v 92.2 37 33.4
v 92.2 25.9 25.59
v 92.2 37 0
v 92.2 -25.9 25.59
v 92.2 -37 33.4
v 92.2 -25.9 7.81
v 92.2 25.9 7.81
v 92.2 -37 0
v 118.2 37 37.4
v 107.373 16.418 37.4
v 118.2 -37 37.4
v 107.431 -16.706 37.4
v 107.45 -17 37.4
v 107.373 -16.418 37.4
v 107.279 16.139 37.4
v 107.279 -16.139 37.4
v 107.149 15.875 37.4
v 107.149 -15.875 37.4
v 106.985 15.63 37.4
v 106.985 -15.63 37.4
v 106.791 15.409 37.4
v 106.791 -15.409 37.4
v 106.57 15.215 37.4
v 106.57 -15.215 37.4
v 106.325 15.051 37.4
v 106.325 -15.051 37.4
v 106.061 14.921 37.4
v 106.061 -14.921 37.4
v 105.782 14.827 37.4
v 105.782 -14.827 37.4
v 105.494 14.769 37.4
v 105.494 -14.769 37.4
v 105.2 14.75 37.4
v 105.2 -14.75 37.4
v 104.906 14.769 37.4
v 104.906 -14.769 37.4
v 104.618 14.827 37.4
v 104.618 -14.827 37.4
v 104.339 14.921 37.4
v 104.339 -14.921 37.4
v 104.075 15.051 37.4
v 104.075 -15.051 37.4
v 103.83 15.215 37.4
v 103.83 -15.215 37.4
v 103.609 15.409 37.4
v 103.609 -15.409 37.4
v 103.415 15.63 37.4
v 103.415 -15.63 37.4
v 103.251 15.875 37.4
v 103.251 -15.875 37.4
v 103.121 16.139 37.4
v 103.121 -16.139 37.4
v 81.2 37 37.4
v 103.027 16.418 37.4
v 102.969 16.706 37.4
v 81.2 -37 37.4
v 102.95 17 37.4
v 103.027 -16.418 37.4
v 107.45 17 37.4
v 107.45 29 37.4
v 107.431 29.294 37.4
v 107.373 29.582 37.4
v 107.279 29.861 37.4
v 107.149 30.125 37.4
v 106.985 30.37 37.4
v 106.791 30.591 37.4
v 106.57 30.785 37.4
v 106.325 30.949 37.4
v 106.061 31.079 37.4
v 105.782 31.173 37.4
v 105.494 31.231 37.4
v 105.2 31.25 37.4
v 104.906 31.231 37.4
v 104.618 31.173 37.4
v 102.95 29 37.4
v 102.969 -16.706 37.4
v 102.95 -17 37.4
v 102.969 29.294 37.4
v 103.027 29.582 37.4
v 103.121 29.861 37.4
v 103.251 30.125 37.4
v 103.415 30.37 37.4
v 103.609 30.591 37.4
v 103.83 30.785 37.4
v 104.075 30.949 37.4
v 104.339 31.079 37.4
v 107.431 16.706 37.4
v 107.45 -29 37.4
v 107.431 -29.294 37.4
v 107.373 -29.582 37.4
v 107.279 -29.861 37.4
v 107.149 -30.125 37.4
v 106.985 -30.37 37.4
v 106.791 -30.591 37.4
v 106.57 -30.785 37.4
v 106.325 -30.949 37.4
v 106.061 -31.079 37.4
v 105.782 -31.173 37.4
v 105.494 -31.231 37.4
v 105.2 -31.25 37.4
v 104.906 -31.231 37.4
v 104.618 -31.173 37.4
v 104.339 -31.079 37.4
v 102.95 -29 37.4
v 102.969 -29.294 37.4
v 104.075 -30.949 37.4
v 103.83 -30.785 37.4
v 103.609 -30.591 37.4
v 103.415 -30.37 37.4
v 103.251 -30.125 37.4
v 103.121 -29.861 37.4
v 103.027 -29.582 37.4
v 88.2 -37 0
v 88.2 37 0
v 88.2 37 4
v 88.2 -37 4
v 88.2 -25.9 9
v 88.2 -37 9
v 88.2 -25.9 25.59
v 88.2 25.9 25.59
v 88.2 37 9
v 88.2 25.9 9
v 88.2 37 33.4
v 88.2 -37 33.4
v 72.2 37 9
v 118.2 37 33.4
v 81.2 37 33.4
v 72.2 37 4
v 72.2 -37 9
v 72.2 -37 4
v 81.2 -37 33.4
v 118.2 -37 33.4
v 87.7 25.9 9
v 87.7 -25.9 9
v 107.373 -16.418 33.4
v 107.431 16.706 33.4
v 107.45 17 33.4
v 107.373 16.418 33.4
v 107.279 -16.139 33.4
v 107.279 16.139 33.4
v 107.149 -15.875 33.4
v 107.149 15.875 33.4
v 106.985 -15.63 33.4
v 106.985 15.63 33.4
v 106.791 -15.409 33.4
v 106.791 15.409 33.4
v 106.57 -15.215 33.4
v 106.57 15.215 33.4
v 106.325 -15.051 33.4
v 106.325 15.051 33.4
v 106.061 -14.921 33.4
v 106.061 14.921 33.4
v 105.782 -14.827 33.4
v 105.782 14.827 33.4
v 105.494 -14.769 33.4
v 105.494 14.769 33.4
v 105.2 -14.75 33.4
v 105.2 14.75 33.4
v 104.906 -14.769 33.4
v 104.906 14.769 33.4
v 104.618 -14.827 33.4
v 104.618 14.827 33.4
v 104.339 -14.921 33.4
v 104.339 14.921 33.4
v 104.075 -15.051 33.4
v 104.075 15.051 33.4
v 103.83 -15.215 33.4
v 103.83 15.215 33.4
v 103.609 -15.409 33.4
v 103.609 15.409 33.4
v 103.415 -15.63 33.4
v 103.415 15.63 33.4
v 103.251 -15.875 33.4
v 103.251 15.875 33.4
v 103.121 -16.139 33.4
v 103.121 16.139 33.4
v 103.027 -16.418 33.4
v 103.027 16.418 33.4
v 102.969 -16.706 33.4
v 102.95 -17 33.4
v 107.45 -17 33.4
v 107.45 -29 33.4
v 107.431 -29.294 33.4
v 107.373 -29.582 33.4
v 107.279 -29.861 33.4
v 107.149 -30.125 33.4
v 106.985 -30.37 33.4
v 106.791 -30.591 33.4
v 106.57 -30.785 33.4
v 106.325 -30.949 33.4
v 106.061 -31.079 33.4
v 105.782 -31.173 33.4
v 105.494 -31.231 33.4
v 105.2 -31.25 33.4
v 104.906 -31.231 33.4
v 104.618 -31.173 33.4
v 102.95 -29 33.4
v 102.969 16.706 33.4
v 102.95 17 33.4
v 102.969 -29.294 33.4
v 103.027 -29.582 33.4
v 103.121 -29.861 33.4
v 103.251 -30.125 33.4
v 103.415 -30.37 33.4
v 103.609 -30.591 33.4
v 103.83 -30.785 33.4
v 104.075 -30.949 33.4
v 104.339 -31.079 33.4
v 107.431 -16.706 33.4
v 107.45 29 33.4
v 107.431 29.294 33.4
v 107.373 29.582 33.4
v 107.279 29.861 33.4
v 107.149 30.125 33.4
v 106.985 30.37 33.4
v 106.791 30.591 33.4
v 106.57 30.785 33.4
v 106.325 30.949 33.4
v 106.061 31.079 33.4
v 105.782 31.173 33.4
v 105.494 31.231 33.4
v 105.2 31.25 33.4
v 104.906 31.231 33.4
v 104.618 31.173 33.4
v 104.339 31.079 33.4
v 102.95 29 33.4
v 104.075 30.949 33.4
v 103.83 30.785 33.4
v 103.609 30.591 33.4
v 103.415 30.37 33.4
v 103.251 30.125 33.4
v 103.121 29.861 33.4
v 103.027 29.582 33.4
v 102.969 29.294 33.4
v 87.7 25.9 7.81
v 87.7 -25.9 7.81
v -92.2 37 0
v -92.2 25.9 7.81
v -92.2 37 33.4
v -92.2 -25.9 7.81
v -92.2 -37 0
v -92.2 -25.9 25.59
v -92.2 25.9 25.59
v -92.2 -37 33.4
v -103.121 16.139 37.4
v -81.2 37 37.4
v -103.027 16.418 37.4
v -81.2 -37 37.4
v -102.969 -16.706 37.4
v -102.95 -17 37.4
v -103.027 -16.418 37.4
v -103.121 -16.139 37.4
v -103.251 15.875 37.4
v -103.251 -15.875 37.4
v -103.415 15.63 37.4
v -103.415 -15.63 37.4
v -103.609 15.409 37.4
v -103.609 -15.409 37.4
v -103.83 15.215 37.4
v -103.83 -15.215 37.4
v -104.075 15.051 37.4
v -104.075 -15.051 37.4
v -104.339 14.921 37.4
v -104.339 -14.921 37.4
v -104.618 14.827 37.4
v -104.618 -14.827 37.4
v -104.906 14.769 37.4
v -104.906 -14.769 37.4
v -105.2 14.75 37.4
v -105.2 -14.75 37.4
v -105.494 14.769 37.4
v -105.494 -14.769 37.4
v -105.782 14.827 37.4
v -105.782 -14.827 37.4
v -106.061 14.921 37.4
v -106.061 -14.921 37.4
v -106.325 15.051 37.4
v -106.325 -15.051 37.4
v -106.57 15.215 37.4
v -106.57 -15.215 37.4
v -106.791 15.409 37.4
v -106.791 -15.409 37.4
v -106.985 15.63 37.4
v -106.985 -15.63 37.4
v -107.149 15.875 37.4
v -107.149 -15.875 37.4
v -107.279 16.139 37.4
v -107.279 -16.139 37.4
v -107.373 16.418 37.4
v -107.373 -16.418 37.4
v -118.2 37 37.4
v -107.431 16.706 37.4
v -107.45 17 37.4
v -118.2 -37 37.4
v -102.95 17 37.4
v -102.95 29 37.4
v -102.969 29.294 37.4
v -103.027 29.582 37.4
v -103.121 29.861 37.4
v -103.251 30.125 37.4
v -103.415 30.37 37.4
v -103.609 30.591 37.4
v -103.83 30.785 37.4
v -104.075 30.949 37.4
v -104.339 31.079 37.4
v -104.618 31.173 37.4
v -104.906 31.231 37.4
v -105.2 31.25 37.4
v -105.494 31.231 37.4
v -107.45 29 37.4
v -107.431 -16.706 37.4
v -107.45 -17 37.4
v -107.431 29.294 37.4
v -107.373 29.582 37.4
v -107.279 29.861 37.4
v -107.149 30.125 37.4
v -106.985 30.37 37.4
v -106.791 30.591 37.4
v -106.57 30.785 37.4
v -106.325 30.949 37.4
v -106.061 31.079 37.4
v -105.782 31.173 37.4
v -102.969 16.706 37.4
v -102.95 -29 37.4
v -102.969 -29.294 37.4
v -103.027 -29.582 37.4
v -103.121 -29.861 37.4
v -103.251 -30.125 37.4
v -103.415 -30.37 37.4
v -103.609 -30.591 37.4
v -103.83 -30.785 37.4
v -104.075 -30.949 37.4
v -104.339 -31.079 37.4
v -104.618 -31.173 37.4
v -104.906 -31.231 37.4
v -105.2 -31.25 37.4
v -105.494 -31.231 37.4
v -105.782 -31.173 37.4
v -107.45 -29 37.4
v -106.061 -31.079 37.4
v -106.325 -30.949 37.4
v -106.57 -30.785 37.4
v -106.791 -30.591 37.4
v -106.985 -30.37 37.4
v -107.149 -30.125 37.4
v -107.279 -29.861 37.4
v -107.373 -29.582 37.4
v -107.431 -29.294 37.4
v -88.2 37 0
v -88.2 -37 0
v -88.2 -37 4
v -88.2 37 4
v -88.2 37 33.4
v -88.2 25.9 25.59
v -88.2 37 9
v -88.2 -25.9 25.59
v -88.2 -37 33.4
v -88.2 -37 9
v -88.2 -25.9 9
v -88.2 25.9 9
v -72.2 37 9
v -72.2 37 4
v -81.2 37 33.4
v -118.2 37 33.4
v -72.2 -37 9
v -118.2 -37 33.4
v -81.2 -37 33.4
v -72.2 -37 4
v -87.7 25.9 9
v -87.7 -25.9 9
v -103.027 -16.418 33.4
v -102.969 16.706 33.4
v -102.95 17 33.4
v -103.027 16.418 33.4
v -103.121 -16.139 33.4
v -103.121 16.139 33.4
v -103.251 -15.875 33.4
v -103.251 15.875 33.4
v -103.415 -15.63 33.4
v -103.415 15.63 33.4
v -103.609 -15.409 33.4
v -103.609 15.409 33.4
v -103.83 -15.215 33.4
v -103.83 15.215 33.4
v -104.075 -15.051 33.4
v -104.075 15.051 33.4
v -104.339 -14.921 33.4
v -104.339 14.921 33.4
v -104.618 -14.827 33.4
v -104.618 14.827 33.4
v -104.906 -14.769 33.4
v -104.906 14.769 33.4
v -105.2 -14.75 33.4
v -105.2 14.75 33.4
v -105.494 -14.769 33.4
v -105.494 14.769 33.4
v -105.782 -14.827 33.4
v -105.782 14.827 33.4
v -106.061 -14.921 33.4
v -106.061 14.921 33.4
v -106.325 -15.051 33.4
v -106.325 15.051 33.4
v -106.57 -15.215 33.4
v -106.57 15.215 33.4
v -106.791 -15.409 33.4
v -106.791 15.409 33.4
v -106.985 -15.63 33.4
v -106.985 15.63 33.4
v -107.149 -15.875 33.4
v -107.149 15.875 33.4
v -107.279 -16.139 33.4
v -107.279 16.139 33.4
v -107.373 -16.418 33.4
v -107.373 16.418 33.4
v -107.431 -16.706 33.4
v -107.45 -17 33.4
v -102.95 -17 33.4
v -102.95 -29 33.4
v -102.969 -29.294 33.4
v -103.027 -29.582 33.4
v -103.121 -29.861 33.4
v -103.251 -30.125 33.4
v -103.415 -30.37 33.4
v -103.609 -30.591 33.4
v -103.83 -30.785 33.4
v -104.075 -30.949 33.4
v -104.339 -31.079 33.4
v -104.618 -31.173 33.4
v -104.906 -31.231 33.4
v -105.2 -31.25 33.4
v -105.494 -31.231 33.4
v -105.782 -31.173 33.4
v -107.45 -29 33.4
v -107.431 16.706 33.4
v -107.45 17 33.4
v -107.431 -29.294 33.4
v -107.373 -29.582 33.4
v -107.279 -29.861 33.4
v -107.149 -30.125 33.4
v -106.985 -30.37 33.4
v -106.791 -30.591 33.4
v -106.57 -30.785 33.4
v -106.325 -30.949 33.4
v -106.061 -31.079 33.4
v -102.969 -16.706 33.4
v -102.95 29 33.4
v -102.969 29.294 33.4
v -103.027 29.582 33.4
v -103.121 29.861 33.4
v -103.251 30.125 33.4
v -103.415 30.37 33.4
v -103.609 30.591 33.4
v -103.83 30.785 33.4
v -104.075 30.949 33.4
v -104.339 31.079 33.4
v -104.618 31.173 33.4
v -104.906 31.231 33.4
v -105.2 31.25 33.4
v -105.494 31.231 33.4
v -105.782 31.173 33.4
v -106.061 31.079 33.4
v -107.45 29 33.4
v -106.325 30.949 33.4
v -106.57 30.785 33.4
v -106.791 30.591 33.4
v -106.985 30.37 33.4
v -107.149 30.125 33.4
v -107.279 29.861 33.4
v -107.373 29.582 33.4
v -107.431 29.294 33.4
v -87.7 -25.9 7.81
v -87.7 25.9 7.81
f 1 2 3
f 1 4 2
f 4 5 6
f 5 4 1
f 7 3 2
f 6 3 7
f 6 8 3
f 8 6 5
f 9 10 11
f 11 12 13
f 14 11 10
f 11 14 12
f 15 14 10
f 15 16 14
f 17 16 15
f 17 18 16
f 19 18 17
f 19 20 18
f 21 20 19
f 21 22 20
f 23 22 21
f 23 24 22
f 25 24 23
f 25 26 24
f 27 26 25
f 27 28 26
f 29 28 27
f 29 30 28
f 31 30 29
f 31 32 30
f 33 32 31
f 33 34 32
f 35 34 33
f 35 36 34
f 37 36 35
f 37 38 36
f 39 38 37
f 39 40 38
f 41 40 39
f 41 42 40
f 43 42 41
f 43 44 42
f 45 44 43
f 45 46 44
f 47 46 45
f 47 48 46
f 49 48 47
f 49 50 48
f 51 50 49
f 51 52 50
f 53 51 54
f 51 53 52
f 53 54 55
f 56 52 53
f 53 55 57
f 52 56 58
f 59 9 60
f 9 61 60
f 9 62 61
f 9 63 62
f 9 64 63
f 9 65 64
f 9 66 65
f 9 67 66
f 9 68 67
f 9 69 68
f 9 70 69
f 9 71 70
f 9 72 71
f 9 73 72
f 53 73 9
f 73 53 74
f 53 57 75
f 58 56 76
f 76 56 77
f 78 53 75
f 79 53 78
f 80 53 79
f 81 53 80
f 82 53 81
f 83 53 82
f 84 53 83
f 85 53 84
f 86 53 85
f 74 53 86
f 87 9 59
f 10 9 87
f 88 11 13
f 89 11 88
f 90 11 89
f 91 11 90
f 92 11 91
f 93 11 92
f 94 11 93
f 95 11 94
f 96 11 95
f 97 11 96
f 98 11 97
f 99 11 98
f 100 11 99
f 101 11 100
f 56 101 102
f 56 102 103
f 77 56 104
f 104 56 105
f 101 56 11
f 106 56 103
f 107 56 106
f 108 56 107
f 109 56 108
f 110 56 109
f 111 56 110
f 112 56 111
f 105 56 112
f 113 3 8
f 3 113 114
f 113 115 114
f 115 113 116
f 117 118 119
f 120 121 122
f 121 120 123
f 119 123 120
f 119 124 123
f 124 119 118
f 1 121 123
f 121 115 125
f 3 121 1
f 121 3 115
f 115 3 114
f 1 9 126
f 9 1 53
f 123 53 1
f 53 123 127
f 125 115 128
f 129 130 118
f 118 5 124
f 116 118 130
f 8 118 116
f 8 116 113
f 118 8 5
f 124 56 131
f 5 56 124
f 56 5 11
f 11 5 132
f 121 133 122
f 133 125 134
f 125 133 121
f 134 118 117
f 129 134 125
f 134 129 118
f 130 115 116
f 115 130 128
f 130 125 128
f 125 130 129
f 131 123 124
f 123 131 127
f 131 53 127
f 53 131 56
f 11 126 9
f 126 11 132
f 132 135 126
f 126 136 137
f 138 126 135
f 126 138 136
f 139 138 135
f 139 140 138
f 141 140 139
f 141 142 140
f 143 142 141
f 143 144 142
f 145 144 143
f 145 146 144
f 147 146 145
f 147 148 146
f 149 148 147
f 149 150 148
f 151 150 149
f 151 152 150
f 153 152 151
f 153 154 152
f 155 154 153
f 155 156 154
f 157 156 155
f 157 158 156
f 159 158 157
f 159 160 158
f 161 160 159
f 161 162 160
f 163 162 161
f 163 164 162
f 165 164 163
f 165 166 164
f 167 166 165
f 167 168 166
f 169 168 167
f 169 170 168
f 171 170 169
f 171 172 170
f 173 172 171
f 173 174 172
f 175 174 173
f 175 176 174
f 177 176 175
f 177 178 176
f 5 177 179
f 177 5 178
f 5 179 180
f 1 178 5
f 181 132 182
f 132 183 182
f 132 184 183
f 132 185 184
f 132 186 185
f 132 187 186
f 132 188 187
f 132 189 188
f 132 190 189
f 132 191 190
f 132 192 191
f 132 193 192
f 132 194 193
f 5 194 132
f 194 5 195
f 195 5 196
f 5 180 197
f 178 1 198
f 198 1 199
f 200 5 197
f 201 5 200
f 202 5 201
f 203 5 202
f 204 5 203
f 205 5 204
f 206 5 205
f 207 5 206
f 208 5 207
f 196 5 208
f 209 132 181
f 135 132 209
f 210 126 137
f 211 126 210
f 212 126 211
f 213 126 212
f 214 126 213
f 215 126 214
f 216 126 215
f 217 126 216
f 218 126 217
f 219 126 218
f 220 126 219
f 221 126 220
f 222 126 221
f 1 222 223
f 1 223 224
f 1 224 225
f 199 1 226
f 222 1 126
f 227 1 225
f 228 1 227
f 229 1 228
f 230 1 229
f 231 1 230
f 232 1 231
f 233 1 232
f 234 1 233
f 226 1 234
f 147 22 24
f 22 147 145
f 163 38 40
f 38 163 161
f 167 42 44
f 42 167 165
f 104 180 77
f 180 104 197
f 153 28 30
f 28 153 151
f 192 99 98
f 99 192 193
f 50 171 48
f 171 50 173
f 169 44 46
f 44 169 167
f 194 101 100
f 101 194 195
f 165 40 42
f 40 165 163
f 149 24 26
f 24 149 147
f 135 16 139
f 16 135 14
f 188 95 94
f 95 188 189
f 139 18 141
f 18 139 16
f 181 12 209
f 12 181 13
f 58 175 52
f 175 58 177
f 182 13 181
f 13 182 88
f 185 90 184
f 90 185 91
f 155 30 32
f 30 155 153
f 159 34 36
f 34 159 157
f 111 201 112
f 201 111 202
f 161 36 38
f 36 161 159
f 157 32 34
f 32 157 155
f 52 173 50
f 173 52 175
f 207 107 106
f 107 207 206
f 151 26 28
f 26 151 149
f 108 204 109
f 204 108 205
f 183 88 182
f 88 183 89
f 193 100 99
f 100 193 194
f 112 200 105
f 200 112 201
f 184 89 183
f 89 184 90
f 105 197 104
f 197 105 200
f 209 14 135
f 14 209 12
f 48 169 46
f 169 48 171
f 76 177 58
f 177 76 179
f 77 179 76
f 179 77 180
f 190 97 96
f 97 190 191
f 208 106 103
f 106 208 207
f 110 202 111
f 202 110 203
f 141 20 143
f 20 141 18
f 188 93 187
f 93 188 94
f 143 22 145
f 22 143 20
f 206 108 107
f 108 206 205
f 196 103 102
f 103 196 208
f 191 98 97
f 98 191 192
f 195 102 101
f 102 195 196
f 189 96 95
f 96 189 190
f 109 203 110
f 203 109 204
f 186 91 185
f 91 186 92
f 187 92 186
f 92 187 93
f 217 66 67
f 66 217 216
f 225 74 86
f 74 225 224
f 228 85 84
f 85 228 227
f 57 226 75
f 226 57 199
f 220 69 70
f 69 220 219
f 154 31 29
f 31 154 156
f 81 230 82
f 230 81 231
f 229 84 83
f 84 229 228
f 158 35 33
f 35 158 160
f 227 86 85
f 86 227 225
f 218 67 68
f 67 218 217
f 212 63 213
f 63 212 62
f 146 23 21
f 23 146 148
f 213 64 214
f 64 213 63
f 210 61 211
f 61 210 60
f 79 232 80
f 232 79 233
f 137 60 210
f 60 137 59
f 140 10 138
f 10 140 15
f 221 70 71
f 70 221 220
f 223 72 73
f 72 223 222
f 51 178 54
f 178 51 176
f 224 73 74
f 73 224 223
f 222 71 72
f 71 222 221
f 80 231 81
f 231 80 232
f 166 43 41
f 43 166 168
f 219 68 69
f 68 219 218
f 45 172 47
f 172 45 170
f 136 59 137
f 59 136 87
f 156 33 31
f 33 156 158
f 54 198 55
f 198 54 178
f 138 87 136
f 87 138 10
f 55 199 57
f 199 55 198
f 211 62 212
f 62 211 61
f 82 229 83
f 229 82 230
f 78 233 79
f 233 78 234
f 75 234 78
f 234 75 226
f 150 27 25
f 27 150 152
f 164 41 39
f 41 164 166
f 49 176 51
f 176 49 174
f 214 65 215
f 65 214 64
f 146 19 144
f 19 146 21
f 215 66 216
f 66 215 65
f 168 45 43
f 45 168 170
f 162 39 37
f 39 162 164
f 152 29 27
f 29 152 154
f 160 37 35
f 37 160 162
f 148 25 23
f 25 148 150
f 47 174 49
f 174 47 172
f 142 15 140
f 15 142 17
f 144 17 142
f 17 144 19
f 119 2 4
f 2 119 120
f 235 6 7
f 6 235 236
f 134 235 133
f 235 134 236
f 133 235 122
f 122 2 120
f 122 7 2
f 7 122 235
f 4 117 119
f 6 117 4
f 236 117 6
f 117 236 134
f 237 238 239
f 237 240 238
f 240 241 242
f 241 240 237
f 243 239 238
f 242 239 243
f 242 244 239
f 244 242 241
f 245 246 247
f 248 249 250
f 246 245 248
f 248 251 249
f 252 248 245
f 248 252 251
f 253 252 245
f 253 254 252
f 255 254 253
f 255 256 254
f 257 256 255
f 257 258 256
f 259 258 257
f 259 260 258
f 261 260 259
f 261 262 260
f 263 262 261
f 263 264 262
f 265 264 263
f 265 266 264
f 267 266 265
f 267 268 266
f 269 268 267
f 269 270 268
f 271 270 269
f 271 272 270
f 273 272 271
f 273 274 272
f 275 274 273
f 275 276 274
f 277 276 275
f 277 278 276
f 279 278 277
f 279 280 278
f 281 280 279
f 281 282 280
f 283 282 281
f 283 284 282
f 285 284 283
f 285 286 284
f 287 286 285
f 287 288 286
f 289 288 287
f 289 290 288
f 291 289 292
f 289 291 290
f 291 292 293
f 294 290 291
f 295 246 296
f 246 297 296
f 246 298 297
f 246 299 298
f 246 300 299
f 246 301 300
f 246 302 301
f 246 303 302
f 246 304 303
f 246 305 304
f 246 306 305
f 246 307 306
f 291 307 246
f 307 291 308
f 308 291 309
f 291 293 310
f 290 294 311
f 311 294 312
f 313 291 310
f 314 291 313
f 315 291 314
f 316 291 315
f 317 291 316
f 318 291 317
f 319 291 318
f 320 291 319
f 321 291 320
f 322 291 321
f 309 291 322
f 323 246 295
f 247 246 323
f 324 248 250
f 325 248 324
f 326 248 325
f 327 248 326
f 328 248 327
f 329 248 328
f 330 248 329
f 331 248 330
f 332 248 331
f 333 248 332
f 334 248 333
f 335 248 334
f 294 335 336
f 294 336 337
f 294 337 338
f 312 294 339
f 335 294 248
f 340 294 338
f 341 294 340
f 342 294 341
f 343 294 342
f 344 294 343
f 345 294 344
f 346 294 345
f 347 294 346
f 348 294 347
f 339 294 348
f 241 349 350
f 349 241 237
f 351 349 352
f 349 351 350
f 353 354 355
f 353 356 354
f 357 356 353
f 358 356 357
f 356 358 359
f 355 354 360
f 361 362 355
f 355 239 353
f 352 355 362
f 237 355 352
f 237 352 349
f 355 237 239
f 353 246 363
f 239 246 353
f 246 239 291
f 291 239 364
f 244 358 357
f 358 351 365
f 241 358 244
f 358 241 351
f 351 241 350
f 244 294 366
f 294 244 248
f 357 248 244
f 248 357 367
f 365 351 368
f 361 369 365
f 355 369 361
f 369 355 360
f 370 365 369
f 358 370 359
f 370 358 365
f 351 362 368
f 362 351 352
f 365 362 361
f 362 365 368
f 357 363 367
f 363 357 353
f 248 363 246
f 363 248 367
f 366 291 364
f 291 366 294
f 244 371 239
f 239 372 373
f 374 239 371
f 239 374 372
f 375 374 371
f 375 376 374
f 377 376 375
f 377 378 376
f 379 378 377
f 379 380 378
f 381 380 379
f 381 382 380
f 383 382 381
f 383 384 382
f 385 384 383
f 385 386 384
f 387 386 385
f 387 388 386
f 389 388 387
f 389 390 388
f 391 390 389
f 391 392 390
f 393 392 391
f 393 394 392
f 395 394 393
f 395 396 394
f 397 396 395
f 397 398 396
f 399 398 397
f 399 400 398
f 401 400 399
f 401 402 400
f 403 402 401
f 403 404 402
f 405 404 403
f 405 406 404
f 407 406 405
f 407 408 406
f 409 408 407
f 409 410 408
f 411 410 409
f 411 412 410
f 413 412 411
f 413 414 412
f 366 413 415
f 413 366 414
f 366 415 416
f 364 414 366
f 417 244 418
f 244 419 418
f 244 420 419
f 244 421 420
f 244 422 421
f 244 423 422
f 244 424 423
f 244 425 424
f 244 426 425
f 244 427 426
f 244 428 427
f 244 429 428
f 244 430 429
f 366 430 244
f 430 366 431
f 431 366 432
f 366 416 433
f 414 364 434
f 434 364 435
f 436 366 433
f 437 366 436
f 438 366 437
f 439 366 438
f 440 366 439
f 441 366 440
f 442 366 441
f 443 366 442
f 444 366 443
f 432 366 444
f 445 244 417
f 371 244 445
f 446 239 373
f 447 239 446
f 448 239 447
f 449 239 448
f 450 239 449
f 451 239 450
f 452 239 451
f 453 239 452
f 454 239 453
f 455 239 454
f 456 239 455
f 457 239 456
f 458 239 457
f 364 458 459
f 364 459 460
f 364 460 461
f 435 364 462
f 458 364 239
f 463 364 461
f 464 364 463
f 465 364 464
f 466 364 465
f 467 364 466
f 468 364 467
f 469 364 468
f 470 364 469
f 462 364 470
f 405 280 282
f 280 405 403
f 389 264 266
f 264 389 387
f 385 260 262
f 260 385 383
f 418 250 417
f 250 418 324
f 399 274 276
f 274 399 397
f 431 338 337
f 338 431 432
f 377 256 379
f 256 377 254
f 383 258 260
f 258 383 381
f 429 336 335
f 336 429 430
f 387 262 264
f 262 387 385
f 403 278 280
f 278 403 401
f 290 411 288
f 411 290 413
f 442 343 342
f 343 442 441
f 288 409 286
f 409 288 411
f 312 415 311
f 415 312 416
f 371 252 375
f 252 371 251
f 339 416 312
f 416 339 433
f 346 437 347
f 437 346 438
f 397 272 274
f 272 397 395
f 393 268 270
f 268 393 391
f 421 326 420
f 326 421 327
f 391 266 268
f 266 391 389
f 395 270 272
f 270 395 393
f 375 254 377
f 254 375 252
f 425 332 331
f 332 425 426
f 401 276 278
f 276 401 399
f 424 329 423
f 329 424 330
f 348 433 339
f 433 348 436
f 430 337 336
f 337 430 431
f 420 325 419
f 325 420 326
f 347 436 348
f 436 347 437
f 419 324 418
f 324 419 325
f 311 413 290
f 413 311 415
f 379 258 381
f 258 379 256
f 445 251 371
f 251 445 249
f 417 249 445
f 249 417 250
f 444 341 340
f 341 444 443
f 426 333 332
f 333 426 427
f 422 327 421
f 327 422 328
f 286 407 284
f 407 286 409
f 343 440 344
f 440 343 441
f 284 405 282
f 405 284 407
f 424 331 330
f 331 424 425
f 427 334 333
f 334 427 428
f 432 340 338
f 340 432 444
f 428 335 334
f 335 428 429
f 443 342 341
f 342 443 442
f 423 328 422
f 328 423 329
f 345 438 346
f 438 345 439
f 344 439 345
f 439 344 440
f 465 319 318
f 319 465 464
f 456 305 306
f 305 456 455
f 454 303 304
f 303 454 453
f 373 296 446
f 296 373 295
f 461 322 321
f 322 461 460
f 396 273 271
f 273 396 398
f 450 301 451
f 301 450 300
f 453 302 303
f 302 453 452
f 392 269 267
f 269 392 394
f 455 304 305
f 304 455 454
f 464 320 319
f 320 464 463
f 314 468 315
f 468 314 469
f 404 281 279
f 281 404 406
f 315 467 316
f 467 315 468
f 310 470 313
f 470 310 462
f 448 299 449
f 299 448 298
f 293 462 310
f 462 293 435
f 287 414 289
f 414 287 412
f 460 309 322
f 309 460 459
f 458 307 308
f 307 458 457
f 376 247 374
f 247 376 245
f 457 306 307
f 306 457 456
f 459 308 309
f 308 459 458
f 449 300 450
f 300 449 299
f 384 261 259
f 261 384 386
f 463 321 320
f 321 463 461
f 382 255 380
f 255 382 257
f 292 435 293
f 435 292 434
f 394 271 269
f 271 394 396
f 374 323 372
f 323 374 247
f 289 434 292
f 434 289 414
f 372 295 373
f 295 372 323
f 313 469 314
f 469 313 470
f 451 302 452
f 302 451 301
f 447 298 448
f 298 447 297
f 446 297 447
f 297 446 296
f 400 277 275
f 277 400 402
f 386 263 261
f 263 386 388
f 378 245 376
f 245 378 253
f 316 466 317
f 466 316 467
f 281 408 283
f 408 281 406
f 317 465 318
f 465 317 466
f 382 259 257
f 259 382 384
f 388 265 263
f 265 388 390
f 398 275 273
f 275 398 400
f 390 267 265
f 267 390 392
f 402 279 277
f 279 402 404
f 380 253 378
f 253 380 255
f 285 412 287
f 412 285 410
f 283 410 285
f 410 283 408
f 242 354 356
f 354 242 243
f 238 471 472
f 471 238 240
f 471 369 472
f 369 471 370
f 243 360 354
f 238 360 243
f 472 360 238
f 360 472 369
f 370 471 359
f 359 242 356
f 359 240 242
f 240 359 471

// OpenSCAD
/*
Under-Desk Mount - brackets run along the 80mm side
===================================================

User dimensions:
- height 23mm
- depth  80mm   <-- brackets RUN along this dimension (Y axis)
- length 166mm  <-- this is the spacing BETWEEN brackets (X axis)
weight: 510 g

This mount:
- Two mirrored side brackets (left/right)
- Device rests on a shelf
- Top lip prevents falling
- Open ends along the RUN direction (Y), and the long faces (X direction) remain unobstructed.
*/

//////////////////////
// DEVICE DIMENSIONS
//////////////////////
dev_h = 23;
dev_run = 80;     // brackets run along this side (Y)
dev_span = 166;   // distance between brackets / long dimension (X)

//////////////////////
// USER TUNING
//////////////////////
part = "assembly";   // "assembly" | "left" | "right" | "both"
show_device = false;

clearance = 1.2;     // clearance around device
wall = 4;            // main wall thickness

// Shelf (device rests here)
shelf_depth = 16;
shelf_th = 5;

// Retention lip
lip_depth = 7;
lip_th = 4;

// Bracket length along the 80mm side
bracket_len = 74;    // slightly shorter than 80 so ends are clearly open

// Top flange (screws into desk)
flange_w = 26;
flange_th = 4;

hole_d = 4.5;
slot_len = 12;
hole_edge = 14;      // moved in from ends

// Lightweighting (safe/simple)
lighten = true;
window_y_scale = 0.70;
window_z_scale = 0.70;

//////////////////////
// DERIVED
//////////////////////
inner_h = dev_h + 2*clearance;

//////////////////////
// HELPERS
//////////////////////
module elongated_slot(d, len, th){
  hull(){
    translate([-len/2,0,0]) cylinder(h=th+0.2, d=d, $fn=48);
    translate([ len/2,0,0]) cylinder(h=th+0.2, d=d, $fn=48);
  }
}

//////////////////////
// SINGLE BRACKET (RIGHT)
//////////////////////
module bracket_right(){
  plate_th = wall;
  plate_d  = bracket_len;                 // RUN length (Y)
  plate_h  = inner_h + wall*2 + flange_th;
  lip_z    = wall + inner_h + wall;

  difference(){
    union(){
      // Main wall
      cube([plate_th, plate_d, plate_h], center=false);

      // Bottom shelf (supports device)
      translate([-shelf_depth, 0, wall])
        cube([shelf_depth, plate_d, shelf_th], center=false);

      // Top retention lip
      translate([-lip_depth, 0, lip_z])
        cube([lip_depth, plate_d, lip_th], center=false);

      // Top flange to screw into desk
      translate([plate_th, 0, plate_h - flange_th])
        cube([flange_w, plate_d, flange_th], center=false);
    }

    // Two screw slots in flange
    for (yy = [hole_edge, plate_d - hole_edge]){
      translate([plate_th + flange_w/2, yy, plate_h - flange_th - 0.1])
        rotate([0,0,90])
          elongated_slot(hole_d, slot_len, flange_th);
    }

    // Lightening window in wall
    if(lighten){
      translate([-0.5,
                 plate_d*(1-window_y_scale)/2,
                 wall + inner_h*(1-window_z_scale)/2])
        cube([plate_th+1,
              plate_d*window_y_scale,
              inner_h*window_z_scale], center=false);
    }
  }
}

module bracket_left(){
  mirror([1,0,0]) bracket_right();
}

//////////////////////
// DEVICE PREVIEW (RESTING ON SHELF)
//////////////////////
module device_mock(){
  // Device is centered between brackets in X, centered along run direction in Y,
  // and rests on top of the shelf at Z = wall + shelf_th.
  color([0.15,0.15,0.15,0.45])
    translate([
      -dev_span/2,              // X span (166)
      -dev_run/2,               // Y run (80)
      wall + shelf_th
    ])
      cube([dev_span, dev_run, dev_h], center=false);
}

//////////////////////
// ASSEMBLY VIEW
//////////////////////
module assembly(){
  if(show_device) device_mock();

  // Brackets centered along the run direction (Y)
  y0 = -bracket_len/2;

  // Inner faces sit dev_span/2 + clearance from center (X)
  x_offset = dev_span/2 + clearance;

  // Right bracket
  translate([ x_offset + wall, y0, 0 ])
    bracket_right();

  // Left bracket
  translate([-(x_offset + wall), y0, 0 ])
    bracket_left();
}

//////////////////////
// OUTPUT SELECTOR
//////////////////////
if(part == "assembly"){
  assembly();
} else if(part == "right"){
  bracket_right();
} else if(part == "left"){
  bracket_left();
} else if(part == "both"){
  translate([0, -bracket_len-20, 0]) bracket_left();
  translate([0,  0,             0]) bracket_right();
} else {
  assembly();
}
